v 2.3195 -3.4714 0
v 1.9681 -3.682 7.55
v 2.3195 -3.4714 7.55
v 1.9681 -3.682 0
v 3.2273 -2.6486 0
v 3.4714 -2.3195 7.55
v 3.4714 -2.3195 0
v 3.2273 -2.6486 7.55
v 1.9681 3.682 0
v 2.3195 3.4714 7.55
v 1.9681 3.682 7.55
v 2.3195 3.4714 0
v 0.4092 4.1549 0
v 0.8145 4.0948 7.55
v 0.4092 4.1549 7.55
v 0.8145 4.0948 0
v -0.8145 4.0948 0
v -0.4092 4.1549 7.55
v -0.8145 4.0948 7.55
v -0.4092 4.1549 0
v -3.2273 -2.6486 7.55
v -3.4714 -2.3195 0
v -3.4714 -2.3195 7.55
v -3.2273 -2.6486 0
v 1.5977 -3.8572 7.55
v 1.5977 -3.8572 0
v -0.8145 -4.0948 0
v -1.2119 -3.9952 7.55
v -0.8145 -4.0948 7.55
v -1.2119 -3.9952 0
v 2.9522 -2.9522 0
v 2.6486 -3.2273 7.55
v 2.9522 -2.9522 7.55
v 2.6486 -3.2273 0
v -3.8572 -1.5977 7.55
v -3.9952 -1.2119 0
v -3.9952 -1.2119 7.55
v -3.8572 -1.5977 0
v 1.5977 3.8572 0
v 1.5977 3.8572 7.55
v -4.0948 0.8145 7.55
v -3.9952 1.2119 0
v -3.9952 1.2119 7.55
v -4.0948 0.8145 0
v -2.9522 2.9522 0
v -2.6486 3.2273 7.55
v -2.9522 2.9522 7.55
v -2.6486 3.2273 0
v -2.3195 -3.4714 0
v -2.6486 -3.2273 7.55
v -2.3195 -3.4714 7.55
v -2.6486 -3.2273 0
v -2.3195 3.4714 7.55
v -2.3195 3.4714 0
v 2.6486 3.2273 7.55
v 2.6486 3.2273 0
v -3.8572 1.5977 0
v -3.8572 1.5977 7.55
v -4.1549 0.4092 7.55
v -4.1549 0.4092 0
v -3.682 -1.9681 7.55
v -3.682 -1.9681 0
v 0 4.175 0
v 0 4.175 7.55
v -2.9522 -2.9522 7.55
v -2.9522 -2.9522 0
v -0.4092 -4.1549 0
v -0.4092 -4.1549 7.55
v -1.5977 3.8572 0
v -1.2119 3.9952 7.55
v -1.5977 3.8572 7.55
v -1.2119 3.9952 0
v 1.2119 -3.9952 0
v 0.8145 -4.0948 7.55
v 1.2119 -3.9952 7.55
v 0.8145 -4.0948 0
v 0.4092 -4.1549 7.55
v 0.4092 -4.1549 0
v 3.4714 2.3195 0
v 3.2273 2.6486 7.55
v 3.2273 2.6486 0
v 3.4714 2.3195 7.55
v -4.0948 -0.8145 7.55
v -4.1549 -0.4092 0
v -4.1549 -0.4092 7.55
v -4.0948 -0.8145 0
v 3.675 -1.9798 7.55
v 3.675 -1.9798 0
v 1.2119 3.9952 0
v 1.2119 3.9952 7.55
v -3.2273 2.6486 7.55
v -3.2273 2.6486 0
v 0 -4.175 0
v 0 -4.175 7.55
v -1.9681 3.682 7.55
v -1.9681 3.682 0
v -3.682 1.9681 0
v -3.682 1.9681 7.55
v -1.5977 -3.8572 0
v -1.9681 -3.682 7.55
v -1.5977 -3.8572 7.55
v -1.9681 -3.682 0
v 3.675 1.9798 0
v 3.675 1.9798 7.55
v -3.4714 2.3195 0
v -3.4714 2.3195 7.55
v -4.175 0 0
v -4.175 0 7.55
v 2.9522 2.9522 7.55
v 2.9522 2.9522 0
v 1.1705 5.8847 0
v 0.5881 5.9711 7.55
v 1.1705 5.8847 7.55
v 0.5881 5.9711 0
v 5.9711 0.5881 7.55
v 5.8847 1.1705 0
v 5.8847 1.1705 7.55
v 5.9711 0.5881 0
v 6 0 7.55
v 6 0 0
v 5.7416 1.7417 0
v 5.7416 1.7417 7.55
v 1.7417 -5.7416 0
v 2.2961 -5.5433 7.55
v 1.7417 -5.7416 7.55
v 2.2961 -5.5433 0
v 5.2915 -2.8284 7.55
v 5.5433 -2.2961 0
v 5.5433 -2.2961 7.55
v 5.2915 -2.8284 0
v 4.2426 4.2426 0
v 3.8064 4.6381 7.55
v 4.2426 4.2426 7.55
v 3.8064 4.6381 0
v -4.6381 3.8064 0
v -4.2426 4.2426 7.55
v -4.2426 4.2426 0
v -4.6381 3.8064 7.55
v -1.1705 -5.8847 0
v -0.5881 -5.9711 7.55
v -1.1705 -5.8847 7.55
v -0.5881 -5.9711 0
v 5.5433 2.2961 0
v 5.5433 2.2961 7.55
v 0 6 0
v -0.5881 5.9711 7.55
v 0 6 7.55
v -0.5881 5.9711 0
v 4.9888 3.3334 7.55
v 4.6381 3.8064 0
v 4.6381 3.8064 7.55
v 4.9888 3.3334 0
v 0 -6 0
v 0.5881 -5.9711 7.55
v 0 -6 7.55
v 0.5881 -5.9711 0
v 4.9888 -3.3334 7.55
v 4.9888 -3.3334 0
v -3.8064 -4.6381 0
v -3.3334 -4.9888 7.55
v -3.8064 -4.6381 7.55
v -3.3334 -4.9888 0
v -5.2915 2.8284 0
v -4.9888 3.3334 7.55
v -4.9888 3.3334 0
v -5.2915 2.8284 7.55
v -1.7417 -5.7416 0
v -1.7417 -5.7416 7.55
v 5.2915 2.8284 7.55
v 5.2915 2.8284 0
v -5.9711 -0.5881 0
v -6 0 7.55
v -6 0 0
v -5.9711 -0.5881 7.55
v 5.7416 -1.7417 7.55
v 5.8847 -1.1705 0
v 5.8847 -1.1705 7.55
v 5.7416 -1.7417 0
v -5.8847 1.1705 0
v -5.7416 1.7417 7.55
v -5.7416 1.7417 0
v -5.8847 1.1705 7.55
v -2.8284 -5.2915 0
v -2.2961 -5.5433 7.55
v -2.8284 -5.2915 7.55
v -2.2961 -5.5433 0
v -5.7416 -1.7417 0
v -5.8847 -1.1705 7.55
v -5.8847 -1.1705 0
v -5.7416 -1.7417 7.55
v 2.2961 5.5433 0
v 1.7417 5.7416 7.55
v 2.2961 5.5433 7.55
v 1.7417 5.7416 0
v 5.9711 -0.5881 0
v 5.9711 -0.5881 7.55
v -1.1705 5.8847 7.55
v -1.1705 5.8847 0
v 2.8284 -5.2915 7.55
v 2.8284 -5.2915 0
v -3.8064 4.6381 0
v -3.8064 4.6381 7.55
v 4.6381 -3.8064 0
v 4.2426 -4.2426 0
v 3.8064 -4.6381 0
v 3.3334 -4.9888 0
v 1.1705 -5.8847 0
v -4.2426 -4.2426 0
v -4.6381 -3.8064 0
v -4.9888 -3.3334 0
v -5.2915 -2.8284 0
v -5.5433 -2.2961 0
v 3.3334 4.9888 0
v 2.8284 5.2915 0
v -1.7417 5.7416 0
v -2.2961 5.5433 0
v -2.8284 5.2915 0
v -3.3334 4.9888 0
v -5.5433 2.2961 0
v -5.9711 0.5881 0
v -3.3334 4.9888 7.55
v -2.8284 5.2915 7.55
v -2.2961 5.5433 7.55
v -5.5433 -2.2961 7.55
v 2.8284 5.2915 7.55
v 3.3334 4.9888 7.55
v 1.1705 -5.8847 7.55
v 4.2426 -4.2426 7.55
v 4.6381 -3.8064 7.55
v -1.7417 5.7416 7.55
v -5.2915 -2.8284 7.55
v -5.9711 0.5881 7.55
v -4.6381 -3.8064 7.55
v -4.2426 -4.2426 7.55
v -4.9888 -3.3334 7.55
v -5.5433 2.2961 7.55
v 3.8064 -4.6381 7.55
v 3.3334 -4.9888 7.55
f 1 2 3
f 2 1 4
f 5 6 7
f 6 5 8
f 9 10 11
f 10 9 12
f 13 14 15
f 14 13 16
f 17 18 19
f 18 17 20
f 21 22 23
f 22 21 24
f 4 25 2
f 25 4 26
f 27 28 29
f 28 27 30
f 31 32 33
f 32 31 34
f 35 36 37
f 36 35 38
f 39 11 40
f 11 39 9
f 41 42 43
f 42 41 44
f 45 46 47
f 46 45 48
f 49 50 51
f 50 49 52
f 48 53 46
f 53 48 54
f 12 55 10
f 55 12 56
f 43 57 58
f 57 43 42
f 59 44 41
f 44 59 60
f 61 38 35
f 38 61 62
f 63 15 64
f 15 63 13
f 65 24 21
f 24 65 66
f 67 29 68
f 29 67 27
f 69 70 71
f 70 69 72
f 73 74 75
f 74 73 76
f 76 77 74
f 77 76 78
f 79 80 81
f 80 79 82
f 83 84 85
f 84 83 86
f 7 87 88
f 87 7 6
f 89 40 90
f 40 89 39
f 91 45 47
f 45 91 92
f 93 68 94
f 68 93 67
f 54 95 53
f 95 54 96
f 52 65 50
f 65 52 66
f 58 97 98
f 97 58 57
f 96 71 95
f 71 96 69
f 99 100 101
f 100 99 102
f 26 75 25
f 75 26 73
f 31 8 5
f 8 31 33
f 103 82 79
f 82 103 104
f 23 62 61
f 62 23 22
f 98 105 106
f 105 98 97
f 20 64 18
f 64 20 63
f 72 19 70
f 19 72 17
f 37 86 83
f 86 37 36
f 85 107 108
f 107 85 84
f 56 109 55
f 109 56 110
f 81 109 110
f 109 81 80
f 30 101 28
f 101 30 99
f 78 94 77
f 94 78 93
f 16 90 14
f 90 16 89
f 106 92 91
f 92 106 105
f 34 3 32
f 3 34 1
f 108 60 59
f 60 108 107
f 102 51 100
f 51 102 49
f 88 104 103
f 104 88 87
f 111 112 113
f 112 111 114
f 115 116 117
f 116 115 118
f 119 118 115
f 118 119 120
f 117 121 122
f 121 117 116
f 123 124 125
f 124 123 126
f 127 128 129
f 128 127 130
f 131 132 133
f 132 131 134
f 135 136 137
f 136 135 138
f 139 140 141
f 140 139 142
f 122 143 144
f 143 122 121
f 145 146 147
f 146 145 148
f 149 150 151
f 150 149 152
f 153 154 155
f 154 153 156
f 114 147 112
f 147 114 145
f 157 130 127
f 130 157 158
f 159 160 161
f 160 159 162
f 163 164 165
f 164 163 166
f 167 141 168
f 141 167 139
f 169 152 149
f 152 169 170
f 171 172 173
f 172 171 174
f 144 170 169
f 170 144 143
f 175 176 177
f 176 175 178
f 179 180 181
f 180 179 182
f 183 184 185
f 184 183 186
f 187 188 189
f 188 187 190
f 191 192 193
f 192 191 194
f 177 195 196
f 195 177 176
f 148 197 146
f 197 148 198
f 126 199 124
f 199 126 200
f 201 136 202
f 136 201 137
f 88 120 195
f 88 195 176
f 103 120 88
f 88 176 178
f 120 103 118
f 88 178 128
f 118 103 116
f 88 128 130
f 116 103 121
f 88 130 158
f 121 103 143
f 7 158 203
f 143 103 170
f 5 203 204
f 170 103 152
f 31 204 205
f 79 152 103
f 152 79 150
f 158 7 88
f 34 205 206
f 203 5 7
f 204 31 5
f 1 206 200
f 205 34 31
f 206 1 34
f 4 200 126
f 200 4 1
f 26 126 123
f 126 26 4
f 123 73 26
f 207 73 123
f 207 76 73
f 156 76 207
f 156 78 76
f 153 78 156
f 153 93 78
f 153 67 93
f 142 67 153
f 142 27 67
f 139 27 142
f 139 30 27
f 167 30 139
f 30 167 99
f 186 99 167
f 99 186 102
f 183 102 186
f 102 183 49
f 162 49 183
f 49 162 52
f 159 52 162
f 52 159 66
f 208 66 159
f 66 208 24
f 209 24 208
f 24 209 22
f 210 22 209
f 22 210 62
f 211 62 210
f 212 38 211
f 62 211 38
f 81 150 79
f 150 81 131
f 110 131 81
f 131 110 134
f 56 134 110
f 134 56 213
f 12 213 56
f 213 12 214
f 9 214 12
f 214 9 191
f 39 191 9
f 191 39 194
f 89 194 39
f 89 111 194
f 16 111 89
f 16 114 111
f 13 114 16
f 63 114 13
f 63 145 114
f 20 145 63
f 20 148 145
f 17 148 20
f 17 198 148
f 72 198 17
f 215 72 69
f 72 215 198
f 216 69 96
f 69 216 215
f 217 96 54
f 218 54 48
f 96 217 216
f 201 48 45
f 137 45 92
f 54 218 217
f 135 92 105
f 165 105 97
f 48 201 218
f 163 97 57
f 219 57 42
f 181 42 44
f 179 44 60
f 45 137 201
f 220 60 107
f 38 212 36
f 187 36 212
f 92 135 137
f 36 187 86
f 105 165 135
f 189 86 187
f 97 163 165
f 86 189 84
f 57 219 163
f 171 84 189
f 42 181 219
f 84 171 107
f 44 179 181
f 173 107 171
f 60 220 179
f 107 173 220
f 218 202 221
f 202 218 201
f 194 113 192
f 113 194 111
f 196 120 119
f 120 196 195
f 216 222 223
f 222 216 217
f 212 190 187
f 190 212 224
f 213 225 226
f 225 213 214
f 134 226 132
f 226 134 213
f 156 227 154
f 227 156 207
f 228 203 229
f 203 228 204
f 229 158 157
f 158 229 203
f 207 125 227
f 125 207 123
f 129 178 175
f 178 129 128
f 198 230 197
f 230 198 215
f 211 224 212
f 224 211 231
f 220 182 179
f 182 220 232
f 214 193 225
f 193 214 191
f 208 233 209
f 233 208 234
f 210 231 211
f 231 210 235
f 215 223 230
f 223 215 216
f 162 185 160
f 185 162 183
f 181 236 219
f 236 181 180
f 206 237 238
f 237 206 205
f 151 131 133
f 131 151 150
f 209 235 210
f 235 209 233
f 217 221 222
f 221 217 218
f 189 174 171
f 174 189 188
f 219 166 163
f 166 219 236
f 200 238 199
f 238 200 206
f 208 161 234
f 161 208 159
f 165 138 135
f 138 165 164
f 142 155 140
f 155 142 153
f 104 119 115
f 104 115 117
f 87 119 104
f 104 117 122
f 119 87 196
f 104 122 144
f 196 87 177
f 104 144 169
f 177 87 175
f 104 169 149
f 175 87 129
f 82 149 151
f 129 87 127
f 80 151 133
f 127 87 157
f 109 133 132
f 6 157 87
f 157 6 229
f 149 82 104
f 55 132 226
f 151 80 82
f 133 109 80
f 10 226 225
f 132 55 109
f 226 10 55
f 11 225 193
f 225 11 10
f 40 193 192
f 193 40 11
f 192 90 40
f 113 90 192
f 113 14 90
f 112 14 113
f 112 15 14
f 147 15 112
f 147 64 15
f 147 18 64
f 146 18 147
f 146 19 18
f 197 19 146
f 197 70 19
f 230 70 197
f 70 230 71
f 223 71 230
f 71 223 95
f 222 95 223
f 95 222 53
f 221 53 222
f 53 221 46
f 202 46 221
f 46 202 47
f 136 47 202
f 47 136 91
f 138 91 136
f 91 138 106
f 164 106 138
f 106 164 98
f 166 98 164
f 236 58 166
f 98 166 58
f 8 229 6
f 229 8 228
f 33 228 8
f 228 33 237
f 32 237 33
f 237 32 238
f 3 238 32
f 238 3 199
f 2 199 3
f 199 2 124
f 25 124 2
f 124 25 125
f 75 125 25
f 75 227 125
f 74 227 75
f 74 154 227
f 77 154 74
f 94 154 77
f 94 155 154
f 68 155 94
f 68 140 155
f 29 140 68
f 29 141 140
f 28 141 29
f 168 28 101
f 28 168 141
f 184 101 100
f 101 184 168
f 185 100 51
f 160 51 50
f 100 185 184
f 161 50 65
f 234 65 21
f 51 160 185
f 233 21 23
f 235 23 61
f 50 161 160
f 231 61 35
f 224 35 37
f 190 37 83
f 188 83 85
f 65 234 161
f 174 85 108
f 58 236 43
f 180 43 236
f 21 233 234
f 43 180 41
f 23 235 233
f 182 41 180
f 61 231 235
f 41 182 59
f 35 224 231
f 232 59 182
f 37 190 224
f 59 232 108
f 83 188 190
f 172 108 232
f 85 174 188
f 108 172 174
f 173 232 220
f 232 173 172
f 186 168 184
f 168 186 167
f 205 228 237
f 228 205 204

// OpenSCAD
// file: parameters.scad
// =============================================================================
// Gen-CA — nightly 2026-10-13 (physics_scorer, honest magpylib watts)
// Break the plate limit instead of the physics: the 2026-10-11 scans showed watts keep rising with machine size, but Ø194 was the largest one-piece stator/rotor set that fits one 410 mm plate. Gen-CA makes the steel disc the structural rotor and prints the magnet carrier as 8 bolt-on arcs per rotor plus a separate D-flat hub, opens the stator centre, and prints the 12 bobbin bases in place inside their stator bays, so a much bigger R84 / Ø226 machine (bobbins r64–104, 4.95 mm copper, 7.55 mm magnet gap) still packs on ONE plate.
// Clocking 0 deg (magnets N facing S) + D-flat keyed bore + index notch + flip-symmetric hole map.
// Windable 2-piece bobbin; turns = physics_scorer turns_fit; copper only between flanges.
// Steel back-iron: 2× Ø194 × 4.76 mm (3/16") mild-steel discs (steel_backiron_disc.dxf); magnets sit ON the steel
// (through-pockets) -> score with --back-iron. Night 2026-10-13.
// =============================================================================
topology            = "dual_rotor";

// --- Wire / winding (physics_scorer winding-fit) -------------------------------
wire_awg            = 26;
wire_od             = 0.45;     // insulated OD mm (bare 0.405)
fill_realistic      = 0.65;     // insulated-wire area / window (DENSE layered wind with a jig; scorer cap 0.65)
turns               = 366;       // = physics_scorer turns_fit (do NOT raise)
coil_former_type    = "bobbin";
coil_core_inset     = 18.10;     // radial copper build: hub = copper boundary inset by this
wind_build_axial    = 0.0;      // nothing proud of the flanges
wind_build_radial   = 0.0;

// --- Bobbin (base + lid) ---------------------------------------------------------
coil_id_r           = 64.00;    // copper boundary sector
coil_od_r           = 104.00;
span_deg            = 26.87;    // = pitch - 2*asin((wall+0.85)/coil_id_r) -> >=1.2 mm stator web
former_web          = 4.95;     // copper height between flanges (TALL copper: steel keeps Bz up)
flange_t            = 0.80;     // >= 0.8 mm FDM wall rule (tall winds push on the flanges)
wall                = 0.80;     // flange lip beyond copper
former_bare_h       = former_web + 2 * flange_t;
coil_envelope_h     = former_bare_h + 2 * wind_build_axial;
tab_w               = 7.0;
tab_len             = 7.0;
tab_h               = former_bare_h / 2;
pin_d               = 1.9;      // 1.75 mm filament locating pin
coil_mount_r        = coil_od_r + 0.2 + 4.0;
lead_y              = 1.6;
lead_slot_w         = 0.9;
lead_groove_d       = 0.6;

// --- Gap -------------------------------------------------------------------------
run_clear           = 0.50;     // rotor face -> flange
gap_spacer_h        = run_clear + wind_build_axial;
m2m                 = coil_envelope_h + 2 * run_clear;   // rotor face to rotor face (= gap_sleeve length)

// --- Stator ----------------------------------------------------------------------
coil_stations       = 12;
bay_clear           = 0.35;     // 0.35 mm: bobbin BASES print IN PLACE inside the stator bays (print-in-place gap), then pop out
stator_thick        = former_bare_h;                        // bobbins flush both faces
stator_od           = 226;
shaft_clear_stator  = 14.0;     // stator is static; gap sleeve OD 12 spins inside
stator_ir           = 58.85;    // ANNULAR stator: open centre (nested one-plate pack); inner rim 4.0 mm

// --- Rotor(s) --------------------------------------------------------------------
magnet_Br           = 1.43;     // N52
magnet_d_large      = 20.0;
magnet_h_large      = 5.0;      // one O20x5 per pocket
magnet_h_small      = 5.0;      // unused: no O5 pockets in this kit
halbach_magnetisation = "none";  // NO O5 assist magnets in this kit (scan: they lower the 4-pole score)
rotor_b_same_axis   = true;     // same-index magnets share one axis: N faces S across the gap
large_pocket_d      = 20.3;
small_pocket_d      = 5.3;
pocket_h            = 5.00;     // THROUGH the carrier: magnet back face sits on the steel disc (FLUSH seat: carrier = magnet height, magnet face level with the rotor face)
large_n             = 8;
R_large             = 84.0;
small_r_list        = [];       // no O5 pockets
carrier_od          = 194.0;
ring_ir             = 70.85;    // RING rotor: PLA magnet ring r ring_ir..carrier_od/2 (steel disc = structural rotor)
hub_flange_od       = 74.0;     // separate rotor_hub flange (inside the ring, flush with the ring face)
csk_d               = 6.6;      // M3 countersunk head pocket (ISO 10642 head 6.0 nominal) on the stator face
csk_depth           = 1.55;     // = (csk_d - m3_clear) / 2: 90 deg cone; head sits 0.3 mm below the face
n_seg               = 8;        // magnet-carrier ARCS per rotor (segmented carrier)
seg_deg             = 360 / n_seg;
seg_start           = -22.5;   // arc edge angle (between pocket 0 and its clamp bolt)
seg_kerf_deg        = 0.4;      // gap between neighbouring arcs on the steel
carrier_thick       = pocket_h;
hub_h               = 12.0;     // > steel_t + insert: radial set-screw clears the steel
hub_od              = 24.0;     // slim hub so the M4 brace rods fit at R~18 inside the coil ring
hub_insert_d        = 4.0;      // M3 heat-set insert, radial, bears on the D-flat
rotor_b_offset_deg  = 0.0;      // CLOCKING: magnets directly opposite
shaft_key           = "dflat";
dflat_depth         = 0.5;      // 8 mm shaft with 0.5 mm flat (7.5 across flat)
index_notch_d       = 3.0;

// --- Steel back-iron (buyable laser-cut) -------------------------------------------
steel_t             = 4.76;      // mild steel thickness (image method ignores it; sized from steel_flux.py so the return path stays well below saturation)
steel_center_hole   = 26.0;     // slips over the rotor hub (OD 24)
steel_od            = carrier_od;   // steel disc OD = rotor carrier OD

// --- Modular MAX interface ----------------------------------------------------------
shaft_bore          = 8.35;
dflat_x             = 4.0 - dflat_depth + (shaft_bore - 8.0) / 2;
bearing_d           = 21.85;
bearing_h           = 7.2;
m3_clear            = 3.5;
bolt_r_inner        = 30.0;     // M3 steel-disc clamp bolts (inside the magnet ring)
bolt_n_inner        = 4;
bolt_inner_angles   = [0, 90, 180, 270];
bolt_r_outer        = 84.0;     // second M3 steel-disc clamp ring
bolt_outer_angles   = [22.5, 67.5, 112.5, 157.5, 202.5, 247.5, 292.5, 337.5];
flange_bolt_r       = 107.5;     // frame rods: OUTSIDE the rotor OD (rotors spin inside them)
flange_bolt_n       = 4;
flange_bolt_offset  = 45.00;    // between coil stations -> never cuts a lead groove/tab
brace_r             = 18.0;
brace_d             = 4.3;      // temporary M4 jack rods (assembly only)
brace_n             = 4;
brace_angles        = [45, 135, 225, 315];          // flip-symmetric

spacer_pad_od       = 14.0;
spacer_pad_id       = m3_clear;
endbell_od          = 225.0;
endbell_thick       = 8.0;
endbell_shaft_clear = 10.0;
collar_h            = 10.0;
standoff_od         = 9.0;
frame_standoff_h    = run_clear + carrier_thick + hub_h + collar_h + 2.0;
sleeve_od           = 12.0;
plate_max_mm        = 410;

$fn = 64;
// main file
// Gen-CA — gap sleeve: rigid spacer on the shaft BETWEEN the two rotor carriers (passes through the stator
// hole). Length = m2m, so it sets the magnet gap and carries the full magnet pull. Print x1, upright.
include <parameters.scad>;
$fn = 64;
// D-flat keyed bore: flat faces +X (angle 0 = magnet pocket 0 = index notch)
module dflat_bore(h) {
    intersection() {
        cylinder(d=shaft_bore, h=h);
        translate([-shaft_bore, -shaft_bore, 0]) cube([shaft_bore + dflat_x, 2*shaft_bore, h]);
    }
}

difference() {
    cylinder(d=sleeve_od, h=m2m);
    translate([0, 0, -0.1]) dflat_bore(m2m + 0.2);
}
